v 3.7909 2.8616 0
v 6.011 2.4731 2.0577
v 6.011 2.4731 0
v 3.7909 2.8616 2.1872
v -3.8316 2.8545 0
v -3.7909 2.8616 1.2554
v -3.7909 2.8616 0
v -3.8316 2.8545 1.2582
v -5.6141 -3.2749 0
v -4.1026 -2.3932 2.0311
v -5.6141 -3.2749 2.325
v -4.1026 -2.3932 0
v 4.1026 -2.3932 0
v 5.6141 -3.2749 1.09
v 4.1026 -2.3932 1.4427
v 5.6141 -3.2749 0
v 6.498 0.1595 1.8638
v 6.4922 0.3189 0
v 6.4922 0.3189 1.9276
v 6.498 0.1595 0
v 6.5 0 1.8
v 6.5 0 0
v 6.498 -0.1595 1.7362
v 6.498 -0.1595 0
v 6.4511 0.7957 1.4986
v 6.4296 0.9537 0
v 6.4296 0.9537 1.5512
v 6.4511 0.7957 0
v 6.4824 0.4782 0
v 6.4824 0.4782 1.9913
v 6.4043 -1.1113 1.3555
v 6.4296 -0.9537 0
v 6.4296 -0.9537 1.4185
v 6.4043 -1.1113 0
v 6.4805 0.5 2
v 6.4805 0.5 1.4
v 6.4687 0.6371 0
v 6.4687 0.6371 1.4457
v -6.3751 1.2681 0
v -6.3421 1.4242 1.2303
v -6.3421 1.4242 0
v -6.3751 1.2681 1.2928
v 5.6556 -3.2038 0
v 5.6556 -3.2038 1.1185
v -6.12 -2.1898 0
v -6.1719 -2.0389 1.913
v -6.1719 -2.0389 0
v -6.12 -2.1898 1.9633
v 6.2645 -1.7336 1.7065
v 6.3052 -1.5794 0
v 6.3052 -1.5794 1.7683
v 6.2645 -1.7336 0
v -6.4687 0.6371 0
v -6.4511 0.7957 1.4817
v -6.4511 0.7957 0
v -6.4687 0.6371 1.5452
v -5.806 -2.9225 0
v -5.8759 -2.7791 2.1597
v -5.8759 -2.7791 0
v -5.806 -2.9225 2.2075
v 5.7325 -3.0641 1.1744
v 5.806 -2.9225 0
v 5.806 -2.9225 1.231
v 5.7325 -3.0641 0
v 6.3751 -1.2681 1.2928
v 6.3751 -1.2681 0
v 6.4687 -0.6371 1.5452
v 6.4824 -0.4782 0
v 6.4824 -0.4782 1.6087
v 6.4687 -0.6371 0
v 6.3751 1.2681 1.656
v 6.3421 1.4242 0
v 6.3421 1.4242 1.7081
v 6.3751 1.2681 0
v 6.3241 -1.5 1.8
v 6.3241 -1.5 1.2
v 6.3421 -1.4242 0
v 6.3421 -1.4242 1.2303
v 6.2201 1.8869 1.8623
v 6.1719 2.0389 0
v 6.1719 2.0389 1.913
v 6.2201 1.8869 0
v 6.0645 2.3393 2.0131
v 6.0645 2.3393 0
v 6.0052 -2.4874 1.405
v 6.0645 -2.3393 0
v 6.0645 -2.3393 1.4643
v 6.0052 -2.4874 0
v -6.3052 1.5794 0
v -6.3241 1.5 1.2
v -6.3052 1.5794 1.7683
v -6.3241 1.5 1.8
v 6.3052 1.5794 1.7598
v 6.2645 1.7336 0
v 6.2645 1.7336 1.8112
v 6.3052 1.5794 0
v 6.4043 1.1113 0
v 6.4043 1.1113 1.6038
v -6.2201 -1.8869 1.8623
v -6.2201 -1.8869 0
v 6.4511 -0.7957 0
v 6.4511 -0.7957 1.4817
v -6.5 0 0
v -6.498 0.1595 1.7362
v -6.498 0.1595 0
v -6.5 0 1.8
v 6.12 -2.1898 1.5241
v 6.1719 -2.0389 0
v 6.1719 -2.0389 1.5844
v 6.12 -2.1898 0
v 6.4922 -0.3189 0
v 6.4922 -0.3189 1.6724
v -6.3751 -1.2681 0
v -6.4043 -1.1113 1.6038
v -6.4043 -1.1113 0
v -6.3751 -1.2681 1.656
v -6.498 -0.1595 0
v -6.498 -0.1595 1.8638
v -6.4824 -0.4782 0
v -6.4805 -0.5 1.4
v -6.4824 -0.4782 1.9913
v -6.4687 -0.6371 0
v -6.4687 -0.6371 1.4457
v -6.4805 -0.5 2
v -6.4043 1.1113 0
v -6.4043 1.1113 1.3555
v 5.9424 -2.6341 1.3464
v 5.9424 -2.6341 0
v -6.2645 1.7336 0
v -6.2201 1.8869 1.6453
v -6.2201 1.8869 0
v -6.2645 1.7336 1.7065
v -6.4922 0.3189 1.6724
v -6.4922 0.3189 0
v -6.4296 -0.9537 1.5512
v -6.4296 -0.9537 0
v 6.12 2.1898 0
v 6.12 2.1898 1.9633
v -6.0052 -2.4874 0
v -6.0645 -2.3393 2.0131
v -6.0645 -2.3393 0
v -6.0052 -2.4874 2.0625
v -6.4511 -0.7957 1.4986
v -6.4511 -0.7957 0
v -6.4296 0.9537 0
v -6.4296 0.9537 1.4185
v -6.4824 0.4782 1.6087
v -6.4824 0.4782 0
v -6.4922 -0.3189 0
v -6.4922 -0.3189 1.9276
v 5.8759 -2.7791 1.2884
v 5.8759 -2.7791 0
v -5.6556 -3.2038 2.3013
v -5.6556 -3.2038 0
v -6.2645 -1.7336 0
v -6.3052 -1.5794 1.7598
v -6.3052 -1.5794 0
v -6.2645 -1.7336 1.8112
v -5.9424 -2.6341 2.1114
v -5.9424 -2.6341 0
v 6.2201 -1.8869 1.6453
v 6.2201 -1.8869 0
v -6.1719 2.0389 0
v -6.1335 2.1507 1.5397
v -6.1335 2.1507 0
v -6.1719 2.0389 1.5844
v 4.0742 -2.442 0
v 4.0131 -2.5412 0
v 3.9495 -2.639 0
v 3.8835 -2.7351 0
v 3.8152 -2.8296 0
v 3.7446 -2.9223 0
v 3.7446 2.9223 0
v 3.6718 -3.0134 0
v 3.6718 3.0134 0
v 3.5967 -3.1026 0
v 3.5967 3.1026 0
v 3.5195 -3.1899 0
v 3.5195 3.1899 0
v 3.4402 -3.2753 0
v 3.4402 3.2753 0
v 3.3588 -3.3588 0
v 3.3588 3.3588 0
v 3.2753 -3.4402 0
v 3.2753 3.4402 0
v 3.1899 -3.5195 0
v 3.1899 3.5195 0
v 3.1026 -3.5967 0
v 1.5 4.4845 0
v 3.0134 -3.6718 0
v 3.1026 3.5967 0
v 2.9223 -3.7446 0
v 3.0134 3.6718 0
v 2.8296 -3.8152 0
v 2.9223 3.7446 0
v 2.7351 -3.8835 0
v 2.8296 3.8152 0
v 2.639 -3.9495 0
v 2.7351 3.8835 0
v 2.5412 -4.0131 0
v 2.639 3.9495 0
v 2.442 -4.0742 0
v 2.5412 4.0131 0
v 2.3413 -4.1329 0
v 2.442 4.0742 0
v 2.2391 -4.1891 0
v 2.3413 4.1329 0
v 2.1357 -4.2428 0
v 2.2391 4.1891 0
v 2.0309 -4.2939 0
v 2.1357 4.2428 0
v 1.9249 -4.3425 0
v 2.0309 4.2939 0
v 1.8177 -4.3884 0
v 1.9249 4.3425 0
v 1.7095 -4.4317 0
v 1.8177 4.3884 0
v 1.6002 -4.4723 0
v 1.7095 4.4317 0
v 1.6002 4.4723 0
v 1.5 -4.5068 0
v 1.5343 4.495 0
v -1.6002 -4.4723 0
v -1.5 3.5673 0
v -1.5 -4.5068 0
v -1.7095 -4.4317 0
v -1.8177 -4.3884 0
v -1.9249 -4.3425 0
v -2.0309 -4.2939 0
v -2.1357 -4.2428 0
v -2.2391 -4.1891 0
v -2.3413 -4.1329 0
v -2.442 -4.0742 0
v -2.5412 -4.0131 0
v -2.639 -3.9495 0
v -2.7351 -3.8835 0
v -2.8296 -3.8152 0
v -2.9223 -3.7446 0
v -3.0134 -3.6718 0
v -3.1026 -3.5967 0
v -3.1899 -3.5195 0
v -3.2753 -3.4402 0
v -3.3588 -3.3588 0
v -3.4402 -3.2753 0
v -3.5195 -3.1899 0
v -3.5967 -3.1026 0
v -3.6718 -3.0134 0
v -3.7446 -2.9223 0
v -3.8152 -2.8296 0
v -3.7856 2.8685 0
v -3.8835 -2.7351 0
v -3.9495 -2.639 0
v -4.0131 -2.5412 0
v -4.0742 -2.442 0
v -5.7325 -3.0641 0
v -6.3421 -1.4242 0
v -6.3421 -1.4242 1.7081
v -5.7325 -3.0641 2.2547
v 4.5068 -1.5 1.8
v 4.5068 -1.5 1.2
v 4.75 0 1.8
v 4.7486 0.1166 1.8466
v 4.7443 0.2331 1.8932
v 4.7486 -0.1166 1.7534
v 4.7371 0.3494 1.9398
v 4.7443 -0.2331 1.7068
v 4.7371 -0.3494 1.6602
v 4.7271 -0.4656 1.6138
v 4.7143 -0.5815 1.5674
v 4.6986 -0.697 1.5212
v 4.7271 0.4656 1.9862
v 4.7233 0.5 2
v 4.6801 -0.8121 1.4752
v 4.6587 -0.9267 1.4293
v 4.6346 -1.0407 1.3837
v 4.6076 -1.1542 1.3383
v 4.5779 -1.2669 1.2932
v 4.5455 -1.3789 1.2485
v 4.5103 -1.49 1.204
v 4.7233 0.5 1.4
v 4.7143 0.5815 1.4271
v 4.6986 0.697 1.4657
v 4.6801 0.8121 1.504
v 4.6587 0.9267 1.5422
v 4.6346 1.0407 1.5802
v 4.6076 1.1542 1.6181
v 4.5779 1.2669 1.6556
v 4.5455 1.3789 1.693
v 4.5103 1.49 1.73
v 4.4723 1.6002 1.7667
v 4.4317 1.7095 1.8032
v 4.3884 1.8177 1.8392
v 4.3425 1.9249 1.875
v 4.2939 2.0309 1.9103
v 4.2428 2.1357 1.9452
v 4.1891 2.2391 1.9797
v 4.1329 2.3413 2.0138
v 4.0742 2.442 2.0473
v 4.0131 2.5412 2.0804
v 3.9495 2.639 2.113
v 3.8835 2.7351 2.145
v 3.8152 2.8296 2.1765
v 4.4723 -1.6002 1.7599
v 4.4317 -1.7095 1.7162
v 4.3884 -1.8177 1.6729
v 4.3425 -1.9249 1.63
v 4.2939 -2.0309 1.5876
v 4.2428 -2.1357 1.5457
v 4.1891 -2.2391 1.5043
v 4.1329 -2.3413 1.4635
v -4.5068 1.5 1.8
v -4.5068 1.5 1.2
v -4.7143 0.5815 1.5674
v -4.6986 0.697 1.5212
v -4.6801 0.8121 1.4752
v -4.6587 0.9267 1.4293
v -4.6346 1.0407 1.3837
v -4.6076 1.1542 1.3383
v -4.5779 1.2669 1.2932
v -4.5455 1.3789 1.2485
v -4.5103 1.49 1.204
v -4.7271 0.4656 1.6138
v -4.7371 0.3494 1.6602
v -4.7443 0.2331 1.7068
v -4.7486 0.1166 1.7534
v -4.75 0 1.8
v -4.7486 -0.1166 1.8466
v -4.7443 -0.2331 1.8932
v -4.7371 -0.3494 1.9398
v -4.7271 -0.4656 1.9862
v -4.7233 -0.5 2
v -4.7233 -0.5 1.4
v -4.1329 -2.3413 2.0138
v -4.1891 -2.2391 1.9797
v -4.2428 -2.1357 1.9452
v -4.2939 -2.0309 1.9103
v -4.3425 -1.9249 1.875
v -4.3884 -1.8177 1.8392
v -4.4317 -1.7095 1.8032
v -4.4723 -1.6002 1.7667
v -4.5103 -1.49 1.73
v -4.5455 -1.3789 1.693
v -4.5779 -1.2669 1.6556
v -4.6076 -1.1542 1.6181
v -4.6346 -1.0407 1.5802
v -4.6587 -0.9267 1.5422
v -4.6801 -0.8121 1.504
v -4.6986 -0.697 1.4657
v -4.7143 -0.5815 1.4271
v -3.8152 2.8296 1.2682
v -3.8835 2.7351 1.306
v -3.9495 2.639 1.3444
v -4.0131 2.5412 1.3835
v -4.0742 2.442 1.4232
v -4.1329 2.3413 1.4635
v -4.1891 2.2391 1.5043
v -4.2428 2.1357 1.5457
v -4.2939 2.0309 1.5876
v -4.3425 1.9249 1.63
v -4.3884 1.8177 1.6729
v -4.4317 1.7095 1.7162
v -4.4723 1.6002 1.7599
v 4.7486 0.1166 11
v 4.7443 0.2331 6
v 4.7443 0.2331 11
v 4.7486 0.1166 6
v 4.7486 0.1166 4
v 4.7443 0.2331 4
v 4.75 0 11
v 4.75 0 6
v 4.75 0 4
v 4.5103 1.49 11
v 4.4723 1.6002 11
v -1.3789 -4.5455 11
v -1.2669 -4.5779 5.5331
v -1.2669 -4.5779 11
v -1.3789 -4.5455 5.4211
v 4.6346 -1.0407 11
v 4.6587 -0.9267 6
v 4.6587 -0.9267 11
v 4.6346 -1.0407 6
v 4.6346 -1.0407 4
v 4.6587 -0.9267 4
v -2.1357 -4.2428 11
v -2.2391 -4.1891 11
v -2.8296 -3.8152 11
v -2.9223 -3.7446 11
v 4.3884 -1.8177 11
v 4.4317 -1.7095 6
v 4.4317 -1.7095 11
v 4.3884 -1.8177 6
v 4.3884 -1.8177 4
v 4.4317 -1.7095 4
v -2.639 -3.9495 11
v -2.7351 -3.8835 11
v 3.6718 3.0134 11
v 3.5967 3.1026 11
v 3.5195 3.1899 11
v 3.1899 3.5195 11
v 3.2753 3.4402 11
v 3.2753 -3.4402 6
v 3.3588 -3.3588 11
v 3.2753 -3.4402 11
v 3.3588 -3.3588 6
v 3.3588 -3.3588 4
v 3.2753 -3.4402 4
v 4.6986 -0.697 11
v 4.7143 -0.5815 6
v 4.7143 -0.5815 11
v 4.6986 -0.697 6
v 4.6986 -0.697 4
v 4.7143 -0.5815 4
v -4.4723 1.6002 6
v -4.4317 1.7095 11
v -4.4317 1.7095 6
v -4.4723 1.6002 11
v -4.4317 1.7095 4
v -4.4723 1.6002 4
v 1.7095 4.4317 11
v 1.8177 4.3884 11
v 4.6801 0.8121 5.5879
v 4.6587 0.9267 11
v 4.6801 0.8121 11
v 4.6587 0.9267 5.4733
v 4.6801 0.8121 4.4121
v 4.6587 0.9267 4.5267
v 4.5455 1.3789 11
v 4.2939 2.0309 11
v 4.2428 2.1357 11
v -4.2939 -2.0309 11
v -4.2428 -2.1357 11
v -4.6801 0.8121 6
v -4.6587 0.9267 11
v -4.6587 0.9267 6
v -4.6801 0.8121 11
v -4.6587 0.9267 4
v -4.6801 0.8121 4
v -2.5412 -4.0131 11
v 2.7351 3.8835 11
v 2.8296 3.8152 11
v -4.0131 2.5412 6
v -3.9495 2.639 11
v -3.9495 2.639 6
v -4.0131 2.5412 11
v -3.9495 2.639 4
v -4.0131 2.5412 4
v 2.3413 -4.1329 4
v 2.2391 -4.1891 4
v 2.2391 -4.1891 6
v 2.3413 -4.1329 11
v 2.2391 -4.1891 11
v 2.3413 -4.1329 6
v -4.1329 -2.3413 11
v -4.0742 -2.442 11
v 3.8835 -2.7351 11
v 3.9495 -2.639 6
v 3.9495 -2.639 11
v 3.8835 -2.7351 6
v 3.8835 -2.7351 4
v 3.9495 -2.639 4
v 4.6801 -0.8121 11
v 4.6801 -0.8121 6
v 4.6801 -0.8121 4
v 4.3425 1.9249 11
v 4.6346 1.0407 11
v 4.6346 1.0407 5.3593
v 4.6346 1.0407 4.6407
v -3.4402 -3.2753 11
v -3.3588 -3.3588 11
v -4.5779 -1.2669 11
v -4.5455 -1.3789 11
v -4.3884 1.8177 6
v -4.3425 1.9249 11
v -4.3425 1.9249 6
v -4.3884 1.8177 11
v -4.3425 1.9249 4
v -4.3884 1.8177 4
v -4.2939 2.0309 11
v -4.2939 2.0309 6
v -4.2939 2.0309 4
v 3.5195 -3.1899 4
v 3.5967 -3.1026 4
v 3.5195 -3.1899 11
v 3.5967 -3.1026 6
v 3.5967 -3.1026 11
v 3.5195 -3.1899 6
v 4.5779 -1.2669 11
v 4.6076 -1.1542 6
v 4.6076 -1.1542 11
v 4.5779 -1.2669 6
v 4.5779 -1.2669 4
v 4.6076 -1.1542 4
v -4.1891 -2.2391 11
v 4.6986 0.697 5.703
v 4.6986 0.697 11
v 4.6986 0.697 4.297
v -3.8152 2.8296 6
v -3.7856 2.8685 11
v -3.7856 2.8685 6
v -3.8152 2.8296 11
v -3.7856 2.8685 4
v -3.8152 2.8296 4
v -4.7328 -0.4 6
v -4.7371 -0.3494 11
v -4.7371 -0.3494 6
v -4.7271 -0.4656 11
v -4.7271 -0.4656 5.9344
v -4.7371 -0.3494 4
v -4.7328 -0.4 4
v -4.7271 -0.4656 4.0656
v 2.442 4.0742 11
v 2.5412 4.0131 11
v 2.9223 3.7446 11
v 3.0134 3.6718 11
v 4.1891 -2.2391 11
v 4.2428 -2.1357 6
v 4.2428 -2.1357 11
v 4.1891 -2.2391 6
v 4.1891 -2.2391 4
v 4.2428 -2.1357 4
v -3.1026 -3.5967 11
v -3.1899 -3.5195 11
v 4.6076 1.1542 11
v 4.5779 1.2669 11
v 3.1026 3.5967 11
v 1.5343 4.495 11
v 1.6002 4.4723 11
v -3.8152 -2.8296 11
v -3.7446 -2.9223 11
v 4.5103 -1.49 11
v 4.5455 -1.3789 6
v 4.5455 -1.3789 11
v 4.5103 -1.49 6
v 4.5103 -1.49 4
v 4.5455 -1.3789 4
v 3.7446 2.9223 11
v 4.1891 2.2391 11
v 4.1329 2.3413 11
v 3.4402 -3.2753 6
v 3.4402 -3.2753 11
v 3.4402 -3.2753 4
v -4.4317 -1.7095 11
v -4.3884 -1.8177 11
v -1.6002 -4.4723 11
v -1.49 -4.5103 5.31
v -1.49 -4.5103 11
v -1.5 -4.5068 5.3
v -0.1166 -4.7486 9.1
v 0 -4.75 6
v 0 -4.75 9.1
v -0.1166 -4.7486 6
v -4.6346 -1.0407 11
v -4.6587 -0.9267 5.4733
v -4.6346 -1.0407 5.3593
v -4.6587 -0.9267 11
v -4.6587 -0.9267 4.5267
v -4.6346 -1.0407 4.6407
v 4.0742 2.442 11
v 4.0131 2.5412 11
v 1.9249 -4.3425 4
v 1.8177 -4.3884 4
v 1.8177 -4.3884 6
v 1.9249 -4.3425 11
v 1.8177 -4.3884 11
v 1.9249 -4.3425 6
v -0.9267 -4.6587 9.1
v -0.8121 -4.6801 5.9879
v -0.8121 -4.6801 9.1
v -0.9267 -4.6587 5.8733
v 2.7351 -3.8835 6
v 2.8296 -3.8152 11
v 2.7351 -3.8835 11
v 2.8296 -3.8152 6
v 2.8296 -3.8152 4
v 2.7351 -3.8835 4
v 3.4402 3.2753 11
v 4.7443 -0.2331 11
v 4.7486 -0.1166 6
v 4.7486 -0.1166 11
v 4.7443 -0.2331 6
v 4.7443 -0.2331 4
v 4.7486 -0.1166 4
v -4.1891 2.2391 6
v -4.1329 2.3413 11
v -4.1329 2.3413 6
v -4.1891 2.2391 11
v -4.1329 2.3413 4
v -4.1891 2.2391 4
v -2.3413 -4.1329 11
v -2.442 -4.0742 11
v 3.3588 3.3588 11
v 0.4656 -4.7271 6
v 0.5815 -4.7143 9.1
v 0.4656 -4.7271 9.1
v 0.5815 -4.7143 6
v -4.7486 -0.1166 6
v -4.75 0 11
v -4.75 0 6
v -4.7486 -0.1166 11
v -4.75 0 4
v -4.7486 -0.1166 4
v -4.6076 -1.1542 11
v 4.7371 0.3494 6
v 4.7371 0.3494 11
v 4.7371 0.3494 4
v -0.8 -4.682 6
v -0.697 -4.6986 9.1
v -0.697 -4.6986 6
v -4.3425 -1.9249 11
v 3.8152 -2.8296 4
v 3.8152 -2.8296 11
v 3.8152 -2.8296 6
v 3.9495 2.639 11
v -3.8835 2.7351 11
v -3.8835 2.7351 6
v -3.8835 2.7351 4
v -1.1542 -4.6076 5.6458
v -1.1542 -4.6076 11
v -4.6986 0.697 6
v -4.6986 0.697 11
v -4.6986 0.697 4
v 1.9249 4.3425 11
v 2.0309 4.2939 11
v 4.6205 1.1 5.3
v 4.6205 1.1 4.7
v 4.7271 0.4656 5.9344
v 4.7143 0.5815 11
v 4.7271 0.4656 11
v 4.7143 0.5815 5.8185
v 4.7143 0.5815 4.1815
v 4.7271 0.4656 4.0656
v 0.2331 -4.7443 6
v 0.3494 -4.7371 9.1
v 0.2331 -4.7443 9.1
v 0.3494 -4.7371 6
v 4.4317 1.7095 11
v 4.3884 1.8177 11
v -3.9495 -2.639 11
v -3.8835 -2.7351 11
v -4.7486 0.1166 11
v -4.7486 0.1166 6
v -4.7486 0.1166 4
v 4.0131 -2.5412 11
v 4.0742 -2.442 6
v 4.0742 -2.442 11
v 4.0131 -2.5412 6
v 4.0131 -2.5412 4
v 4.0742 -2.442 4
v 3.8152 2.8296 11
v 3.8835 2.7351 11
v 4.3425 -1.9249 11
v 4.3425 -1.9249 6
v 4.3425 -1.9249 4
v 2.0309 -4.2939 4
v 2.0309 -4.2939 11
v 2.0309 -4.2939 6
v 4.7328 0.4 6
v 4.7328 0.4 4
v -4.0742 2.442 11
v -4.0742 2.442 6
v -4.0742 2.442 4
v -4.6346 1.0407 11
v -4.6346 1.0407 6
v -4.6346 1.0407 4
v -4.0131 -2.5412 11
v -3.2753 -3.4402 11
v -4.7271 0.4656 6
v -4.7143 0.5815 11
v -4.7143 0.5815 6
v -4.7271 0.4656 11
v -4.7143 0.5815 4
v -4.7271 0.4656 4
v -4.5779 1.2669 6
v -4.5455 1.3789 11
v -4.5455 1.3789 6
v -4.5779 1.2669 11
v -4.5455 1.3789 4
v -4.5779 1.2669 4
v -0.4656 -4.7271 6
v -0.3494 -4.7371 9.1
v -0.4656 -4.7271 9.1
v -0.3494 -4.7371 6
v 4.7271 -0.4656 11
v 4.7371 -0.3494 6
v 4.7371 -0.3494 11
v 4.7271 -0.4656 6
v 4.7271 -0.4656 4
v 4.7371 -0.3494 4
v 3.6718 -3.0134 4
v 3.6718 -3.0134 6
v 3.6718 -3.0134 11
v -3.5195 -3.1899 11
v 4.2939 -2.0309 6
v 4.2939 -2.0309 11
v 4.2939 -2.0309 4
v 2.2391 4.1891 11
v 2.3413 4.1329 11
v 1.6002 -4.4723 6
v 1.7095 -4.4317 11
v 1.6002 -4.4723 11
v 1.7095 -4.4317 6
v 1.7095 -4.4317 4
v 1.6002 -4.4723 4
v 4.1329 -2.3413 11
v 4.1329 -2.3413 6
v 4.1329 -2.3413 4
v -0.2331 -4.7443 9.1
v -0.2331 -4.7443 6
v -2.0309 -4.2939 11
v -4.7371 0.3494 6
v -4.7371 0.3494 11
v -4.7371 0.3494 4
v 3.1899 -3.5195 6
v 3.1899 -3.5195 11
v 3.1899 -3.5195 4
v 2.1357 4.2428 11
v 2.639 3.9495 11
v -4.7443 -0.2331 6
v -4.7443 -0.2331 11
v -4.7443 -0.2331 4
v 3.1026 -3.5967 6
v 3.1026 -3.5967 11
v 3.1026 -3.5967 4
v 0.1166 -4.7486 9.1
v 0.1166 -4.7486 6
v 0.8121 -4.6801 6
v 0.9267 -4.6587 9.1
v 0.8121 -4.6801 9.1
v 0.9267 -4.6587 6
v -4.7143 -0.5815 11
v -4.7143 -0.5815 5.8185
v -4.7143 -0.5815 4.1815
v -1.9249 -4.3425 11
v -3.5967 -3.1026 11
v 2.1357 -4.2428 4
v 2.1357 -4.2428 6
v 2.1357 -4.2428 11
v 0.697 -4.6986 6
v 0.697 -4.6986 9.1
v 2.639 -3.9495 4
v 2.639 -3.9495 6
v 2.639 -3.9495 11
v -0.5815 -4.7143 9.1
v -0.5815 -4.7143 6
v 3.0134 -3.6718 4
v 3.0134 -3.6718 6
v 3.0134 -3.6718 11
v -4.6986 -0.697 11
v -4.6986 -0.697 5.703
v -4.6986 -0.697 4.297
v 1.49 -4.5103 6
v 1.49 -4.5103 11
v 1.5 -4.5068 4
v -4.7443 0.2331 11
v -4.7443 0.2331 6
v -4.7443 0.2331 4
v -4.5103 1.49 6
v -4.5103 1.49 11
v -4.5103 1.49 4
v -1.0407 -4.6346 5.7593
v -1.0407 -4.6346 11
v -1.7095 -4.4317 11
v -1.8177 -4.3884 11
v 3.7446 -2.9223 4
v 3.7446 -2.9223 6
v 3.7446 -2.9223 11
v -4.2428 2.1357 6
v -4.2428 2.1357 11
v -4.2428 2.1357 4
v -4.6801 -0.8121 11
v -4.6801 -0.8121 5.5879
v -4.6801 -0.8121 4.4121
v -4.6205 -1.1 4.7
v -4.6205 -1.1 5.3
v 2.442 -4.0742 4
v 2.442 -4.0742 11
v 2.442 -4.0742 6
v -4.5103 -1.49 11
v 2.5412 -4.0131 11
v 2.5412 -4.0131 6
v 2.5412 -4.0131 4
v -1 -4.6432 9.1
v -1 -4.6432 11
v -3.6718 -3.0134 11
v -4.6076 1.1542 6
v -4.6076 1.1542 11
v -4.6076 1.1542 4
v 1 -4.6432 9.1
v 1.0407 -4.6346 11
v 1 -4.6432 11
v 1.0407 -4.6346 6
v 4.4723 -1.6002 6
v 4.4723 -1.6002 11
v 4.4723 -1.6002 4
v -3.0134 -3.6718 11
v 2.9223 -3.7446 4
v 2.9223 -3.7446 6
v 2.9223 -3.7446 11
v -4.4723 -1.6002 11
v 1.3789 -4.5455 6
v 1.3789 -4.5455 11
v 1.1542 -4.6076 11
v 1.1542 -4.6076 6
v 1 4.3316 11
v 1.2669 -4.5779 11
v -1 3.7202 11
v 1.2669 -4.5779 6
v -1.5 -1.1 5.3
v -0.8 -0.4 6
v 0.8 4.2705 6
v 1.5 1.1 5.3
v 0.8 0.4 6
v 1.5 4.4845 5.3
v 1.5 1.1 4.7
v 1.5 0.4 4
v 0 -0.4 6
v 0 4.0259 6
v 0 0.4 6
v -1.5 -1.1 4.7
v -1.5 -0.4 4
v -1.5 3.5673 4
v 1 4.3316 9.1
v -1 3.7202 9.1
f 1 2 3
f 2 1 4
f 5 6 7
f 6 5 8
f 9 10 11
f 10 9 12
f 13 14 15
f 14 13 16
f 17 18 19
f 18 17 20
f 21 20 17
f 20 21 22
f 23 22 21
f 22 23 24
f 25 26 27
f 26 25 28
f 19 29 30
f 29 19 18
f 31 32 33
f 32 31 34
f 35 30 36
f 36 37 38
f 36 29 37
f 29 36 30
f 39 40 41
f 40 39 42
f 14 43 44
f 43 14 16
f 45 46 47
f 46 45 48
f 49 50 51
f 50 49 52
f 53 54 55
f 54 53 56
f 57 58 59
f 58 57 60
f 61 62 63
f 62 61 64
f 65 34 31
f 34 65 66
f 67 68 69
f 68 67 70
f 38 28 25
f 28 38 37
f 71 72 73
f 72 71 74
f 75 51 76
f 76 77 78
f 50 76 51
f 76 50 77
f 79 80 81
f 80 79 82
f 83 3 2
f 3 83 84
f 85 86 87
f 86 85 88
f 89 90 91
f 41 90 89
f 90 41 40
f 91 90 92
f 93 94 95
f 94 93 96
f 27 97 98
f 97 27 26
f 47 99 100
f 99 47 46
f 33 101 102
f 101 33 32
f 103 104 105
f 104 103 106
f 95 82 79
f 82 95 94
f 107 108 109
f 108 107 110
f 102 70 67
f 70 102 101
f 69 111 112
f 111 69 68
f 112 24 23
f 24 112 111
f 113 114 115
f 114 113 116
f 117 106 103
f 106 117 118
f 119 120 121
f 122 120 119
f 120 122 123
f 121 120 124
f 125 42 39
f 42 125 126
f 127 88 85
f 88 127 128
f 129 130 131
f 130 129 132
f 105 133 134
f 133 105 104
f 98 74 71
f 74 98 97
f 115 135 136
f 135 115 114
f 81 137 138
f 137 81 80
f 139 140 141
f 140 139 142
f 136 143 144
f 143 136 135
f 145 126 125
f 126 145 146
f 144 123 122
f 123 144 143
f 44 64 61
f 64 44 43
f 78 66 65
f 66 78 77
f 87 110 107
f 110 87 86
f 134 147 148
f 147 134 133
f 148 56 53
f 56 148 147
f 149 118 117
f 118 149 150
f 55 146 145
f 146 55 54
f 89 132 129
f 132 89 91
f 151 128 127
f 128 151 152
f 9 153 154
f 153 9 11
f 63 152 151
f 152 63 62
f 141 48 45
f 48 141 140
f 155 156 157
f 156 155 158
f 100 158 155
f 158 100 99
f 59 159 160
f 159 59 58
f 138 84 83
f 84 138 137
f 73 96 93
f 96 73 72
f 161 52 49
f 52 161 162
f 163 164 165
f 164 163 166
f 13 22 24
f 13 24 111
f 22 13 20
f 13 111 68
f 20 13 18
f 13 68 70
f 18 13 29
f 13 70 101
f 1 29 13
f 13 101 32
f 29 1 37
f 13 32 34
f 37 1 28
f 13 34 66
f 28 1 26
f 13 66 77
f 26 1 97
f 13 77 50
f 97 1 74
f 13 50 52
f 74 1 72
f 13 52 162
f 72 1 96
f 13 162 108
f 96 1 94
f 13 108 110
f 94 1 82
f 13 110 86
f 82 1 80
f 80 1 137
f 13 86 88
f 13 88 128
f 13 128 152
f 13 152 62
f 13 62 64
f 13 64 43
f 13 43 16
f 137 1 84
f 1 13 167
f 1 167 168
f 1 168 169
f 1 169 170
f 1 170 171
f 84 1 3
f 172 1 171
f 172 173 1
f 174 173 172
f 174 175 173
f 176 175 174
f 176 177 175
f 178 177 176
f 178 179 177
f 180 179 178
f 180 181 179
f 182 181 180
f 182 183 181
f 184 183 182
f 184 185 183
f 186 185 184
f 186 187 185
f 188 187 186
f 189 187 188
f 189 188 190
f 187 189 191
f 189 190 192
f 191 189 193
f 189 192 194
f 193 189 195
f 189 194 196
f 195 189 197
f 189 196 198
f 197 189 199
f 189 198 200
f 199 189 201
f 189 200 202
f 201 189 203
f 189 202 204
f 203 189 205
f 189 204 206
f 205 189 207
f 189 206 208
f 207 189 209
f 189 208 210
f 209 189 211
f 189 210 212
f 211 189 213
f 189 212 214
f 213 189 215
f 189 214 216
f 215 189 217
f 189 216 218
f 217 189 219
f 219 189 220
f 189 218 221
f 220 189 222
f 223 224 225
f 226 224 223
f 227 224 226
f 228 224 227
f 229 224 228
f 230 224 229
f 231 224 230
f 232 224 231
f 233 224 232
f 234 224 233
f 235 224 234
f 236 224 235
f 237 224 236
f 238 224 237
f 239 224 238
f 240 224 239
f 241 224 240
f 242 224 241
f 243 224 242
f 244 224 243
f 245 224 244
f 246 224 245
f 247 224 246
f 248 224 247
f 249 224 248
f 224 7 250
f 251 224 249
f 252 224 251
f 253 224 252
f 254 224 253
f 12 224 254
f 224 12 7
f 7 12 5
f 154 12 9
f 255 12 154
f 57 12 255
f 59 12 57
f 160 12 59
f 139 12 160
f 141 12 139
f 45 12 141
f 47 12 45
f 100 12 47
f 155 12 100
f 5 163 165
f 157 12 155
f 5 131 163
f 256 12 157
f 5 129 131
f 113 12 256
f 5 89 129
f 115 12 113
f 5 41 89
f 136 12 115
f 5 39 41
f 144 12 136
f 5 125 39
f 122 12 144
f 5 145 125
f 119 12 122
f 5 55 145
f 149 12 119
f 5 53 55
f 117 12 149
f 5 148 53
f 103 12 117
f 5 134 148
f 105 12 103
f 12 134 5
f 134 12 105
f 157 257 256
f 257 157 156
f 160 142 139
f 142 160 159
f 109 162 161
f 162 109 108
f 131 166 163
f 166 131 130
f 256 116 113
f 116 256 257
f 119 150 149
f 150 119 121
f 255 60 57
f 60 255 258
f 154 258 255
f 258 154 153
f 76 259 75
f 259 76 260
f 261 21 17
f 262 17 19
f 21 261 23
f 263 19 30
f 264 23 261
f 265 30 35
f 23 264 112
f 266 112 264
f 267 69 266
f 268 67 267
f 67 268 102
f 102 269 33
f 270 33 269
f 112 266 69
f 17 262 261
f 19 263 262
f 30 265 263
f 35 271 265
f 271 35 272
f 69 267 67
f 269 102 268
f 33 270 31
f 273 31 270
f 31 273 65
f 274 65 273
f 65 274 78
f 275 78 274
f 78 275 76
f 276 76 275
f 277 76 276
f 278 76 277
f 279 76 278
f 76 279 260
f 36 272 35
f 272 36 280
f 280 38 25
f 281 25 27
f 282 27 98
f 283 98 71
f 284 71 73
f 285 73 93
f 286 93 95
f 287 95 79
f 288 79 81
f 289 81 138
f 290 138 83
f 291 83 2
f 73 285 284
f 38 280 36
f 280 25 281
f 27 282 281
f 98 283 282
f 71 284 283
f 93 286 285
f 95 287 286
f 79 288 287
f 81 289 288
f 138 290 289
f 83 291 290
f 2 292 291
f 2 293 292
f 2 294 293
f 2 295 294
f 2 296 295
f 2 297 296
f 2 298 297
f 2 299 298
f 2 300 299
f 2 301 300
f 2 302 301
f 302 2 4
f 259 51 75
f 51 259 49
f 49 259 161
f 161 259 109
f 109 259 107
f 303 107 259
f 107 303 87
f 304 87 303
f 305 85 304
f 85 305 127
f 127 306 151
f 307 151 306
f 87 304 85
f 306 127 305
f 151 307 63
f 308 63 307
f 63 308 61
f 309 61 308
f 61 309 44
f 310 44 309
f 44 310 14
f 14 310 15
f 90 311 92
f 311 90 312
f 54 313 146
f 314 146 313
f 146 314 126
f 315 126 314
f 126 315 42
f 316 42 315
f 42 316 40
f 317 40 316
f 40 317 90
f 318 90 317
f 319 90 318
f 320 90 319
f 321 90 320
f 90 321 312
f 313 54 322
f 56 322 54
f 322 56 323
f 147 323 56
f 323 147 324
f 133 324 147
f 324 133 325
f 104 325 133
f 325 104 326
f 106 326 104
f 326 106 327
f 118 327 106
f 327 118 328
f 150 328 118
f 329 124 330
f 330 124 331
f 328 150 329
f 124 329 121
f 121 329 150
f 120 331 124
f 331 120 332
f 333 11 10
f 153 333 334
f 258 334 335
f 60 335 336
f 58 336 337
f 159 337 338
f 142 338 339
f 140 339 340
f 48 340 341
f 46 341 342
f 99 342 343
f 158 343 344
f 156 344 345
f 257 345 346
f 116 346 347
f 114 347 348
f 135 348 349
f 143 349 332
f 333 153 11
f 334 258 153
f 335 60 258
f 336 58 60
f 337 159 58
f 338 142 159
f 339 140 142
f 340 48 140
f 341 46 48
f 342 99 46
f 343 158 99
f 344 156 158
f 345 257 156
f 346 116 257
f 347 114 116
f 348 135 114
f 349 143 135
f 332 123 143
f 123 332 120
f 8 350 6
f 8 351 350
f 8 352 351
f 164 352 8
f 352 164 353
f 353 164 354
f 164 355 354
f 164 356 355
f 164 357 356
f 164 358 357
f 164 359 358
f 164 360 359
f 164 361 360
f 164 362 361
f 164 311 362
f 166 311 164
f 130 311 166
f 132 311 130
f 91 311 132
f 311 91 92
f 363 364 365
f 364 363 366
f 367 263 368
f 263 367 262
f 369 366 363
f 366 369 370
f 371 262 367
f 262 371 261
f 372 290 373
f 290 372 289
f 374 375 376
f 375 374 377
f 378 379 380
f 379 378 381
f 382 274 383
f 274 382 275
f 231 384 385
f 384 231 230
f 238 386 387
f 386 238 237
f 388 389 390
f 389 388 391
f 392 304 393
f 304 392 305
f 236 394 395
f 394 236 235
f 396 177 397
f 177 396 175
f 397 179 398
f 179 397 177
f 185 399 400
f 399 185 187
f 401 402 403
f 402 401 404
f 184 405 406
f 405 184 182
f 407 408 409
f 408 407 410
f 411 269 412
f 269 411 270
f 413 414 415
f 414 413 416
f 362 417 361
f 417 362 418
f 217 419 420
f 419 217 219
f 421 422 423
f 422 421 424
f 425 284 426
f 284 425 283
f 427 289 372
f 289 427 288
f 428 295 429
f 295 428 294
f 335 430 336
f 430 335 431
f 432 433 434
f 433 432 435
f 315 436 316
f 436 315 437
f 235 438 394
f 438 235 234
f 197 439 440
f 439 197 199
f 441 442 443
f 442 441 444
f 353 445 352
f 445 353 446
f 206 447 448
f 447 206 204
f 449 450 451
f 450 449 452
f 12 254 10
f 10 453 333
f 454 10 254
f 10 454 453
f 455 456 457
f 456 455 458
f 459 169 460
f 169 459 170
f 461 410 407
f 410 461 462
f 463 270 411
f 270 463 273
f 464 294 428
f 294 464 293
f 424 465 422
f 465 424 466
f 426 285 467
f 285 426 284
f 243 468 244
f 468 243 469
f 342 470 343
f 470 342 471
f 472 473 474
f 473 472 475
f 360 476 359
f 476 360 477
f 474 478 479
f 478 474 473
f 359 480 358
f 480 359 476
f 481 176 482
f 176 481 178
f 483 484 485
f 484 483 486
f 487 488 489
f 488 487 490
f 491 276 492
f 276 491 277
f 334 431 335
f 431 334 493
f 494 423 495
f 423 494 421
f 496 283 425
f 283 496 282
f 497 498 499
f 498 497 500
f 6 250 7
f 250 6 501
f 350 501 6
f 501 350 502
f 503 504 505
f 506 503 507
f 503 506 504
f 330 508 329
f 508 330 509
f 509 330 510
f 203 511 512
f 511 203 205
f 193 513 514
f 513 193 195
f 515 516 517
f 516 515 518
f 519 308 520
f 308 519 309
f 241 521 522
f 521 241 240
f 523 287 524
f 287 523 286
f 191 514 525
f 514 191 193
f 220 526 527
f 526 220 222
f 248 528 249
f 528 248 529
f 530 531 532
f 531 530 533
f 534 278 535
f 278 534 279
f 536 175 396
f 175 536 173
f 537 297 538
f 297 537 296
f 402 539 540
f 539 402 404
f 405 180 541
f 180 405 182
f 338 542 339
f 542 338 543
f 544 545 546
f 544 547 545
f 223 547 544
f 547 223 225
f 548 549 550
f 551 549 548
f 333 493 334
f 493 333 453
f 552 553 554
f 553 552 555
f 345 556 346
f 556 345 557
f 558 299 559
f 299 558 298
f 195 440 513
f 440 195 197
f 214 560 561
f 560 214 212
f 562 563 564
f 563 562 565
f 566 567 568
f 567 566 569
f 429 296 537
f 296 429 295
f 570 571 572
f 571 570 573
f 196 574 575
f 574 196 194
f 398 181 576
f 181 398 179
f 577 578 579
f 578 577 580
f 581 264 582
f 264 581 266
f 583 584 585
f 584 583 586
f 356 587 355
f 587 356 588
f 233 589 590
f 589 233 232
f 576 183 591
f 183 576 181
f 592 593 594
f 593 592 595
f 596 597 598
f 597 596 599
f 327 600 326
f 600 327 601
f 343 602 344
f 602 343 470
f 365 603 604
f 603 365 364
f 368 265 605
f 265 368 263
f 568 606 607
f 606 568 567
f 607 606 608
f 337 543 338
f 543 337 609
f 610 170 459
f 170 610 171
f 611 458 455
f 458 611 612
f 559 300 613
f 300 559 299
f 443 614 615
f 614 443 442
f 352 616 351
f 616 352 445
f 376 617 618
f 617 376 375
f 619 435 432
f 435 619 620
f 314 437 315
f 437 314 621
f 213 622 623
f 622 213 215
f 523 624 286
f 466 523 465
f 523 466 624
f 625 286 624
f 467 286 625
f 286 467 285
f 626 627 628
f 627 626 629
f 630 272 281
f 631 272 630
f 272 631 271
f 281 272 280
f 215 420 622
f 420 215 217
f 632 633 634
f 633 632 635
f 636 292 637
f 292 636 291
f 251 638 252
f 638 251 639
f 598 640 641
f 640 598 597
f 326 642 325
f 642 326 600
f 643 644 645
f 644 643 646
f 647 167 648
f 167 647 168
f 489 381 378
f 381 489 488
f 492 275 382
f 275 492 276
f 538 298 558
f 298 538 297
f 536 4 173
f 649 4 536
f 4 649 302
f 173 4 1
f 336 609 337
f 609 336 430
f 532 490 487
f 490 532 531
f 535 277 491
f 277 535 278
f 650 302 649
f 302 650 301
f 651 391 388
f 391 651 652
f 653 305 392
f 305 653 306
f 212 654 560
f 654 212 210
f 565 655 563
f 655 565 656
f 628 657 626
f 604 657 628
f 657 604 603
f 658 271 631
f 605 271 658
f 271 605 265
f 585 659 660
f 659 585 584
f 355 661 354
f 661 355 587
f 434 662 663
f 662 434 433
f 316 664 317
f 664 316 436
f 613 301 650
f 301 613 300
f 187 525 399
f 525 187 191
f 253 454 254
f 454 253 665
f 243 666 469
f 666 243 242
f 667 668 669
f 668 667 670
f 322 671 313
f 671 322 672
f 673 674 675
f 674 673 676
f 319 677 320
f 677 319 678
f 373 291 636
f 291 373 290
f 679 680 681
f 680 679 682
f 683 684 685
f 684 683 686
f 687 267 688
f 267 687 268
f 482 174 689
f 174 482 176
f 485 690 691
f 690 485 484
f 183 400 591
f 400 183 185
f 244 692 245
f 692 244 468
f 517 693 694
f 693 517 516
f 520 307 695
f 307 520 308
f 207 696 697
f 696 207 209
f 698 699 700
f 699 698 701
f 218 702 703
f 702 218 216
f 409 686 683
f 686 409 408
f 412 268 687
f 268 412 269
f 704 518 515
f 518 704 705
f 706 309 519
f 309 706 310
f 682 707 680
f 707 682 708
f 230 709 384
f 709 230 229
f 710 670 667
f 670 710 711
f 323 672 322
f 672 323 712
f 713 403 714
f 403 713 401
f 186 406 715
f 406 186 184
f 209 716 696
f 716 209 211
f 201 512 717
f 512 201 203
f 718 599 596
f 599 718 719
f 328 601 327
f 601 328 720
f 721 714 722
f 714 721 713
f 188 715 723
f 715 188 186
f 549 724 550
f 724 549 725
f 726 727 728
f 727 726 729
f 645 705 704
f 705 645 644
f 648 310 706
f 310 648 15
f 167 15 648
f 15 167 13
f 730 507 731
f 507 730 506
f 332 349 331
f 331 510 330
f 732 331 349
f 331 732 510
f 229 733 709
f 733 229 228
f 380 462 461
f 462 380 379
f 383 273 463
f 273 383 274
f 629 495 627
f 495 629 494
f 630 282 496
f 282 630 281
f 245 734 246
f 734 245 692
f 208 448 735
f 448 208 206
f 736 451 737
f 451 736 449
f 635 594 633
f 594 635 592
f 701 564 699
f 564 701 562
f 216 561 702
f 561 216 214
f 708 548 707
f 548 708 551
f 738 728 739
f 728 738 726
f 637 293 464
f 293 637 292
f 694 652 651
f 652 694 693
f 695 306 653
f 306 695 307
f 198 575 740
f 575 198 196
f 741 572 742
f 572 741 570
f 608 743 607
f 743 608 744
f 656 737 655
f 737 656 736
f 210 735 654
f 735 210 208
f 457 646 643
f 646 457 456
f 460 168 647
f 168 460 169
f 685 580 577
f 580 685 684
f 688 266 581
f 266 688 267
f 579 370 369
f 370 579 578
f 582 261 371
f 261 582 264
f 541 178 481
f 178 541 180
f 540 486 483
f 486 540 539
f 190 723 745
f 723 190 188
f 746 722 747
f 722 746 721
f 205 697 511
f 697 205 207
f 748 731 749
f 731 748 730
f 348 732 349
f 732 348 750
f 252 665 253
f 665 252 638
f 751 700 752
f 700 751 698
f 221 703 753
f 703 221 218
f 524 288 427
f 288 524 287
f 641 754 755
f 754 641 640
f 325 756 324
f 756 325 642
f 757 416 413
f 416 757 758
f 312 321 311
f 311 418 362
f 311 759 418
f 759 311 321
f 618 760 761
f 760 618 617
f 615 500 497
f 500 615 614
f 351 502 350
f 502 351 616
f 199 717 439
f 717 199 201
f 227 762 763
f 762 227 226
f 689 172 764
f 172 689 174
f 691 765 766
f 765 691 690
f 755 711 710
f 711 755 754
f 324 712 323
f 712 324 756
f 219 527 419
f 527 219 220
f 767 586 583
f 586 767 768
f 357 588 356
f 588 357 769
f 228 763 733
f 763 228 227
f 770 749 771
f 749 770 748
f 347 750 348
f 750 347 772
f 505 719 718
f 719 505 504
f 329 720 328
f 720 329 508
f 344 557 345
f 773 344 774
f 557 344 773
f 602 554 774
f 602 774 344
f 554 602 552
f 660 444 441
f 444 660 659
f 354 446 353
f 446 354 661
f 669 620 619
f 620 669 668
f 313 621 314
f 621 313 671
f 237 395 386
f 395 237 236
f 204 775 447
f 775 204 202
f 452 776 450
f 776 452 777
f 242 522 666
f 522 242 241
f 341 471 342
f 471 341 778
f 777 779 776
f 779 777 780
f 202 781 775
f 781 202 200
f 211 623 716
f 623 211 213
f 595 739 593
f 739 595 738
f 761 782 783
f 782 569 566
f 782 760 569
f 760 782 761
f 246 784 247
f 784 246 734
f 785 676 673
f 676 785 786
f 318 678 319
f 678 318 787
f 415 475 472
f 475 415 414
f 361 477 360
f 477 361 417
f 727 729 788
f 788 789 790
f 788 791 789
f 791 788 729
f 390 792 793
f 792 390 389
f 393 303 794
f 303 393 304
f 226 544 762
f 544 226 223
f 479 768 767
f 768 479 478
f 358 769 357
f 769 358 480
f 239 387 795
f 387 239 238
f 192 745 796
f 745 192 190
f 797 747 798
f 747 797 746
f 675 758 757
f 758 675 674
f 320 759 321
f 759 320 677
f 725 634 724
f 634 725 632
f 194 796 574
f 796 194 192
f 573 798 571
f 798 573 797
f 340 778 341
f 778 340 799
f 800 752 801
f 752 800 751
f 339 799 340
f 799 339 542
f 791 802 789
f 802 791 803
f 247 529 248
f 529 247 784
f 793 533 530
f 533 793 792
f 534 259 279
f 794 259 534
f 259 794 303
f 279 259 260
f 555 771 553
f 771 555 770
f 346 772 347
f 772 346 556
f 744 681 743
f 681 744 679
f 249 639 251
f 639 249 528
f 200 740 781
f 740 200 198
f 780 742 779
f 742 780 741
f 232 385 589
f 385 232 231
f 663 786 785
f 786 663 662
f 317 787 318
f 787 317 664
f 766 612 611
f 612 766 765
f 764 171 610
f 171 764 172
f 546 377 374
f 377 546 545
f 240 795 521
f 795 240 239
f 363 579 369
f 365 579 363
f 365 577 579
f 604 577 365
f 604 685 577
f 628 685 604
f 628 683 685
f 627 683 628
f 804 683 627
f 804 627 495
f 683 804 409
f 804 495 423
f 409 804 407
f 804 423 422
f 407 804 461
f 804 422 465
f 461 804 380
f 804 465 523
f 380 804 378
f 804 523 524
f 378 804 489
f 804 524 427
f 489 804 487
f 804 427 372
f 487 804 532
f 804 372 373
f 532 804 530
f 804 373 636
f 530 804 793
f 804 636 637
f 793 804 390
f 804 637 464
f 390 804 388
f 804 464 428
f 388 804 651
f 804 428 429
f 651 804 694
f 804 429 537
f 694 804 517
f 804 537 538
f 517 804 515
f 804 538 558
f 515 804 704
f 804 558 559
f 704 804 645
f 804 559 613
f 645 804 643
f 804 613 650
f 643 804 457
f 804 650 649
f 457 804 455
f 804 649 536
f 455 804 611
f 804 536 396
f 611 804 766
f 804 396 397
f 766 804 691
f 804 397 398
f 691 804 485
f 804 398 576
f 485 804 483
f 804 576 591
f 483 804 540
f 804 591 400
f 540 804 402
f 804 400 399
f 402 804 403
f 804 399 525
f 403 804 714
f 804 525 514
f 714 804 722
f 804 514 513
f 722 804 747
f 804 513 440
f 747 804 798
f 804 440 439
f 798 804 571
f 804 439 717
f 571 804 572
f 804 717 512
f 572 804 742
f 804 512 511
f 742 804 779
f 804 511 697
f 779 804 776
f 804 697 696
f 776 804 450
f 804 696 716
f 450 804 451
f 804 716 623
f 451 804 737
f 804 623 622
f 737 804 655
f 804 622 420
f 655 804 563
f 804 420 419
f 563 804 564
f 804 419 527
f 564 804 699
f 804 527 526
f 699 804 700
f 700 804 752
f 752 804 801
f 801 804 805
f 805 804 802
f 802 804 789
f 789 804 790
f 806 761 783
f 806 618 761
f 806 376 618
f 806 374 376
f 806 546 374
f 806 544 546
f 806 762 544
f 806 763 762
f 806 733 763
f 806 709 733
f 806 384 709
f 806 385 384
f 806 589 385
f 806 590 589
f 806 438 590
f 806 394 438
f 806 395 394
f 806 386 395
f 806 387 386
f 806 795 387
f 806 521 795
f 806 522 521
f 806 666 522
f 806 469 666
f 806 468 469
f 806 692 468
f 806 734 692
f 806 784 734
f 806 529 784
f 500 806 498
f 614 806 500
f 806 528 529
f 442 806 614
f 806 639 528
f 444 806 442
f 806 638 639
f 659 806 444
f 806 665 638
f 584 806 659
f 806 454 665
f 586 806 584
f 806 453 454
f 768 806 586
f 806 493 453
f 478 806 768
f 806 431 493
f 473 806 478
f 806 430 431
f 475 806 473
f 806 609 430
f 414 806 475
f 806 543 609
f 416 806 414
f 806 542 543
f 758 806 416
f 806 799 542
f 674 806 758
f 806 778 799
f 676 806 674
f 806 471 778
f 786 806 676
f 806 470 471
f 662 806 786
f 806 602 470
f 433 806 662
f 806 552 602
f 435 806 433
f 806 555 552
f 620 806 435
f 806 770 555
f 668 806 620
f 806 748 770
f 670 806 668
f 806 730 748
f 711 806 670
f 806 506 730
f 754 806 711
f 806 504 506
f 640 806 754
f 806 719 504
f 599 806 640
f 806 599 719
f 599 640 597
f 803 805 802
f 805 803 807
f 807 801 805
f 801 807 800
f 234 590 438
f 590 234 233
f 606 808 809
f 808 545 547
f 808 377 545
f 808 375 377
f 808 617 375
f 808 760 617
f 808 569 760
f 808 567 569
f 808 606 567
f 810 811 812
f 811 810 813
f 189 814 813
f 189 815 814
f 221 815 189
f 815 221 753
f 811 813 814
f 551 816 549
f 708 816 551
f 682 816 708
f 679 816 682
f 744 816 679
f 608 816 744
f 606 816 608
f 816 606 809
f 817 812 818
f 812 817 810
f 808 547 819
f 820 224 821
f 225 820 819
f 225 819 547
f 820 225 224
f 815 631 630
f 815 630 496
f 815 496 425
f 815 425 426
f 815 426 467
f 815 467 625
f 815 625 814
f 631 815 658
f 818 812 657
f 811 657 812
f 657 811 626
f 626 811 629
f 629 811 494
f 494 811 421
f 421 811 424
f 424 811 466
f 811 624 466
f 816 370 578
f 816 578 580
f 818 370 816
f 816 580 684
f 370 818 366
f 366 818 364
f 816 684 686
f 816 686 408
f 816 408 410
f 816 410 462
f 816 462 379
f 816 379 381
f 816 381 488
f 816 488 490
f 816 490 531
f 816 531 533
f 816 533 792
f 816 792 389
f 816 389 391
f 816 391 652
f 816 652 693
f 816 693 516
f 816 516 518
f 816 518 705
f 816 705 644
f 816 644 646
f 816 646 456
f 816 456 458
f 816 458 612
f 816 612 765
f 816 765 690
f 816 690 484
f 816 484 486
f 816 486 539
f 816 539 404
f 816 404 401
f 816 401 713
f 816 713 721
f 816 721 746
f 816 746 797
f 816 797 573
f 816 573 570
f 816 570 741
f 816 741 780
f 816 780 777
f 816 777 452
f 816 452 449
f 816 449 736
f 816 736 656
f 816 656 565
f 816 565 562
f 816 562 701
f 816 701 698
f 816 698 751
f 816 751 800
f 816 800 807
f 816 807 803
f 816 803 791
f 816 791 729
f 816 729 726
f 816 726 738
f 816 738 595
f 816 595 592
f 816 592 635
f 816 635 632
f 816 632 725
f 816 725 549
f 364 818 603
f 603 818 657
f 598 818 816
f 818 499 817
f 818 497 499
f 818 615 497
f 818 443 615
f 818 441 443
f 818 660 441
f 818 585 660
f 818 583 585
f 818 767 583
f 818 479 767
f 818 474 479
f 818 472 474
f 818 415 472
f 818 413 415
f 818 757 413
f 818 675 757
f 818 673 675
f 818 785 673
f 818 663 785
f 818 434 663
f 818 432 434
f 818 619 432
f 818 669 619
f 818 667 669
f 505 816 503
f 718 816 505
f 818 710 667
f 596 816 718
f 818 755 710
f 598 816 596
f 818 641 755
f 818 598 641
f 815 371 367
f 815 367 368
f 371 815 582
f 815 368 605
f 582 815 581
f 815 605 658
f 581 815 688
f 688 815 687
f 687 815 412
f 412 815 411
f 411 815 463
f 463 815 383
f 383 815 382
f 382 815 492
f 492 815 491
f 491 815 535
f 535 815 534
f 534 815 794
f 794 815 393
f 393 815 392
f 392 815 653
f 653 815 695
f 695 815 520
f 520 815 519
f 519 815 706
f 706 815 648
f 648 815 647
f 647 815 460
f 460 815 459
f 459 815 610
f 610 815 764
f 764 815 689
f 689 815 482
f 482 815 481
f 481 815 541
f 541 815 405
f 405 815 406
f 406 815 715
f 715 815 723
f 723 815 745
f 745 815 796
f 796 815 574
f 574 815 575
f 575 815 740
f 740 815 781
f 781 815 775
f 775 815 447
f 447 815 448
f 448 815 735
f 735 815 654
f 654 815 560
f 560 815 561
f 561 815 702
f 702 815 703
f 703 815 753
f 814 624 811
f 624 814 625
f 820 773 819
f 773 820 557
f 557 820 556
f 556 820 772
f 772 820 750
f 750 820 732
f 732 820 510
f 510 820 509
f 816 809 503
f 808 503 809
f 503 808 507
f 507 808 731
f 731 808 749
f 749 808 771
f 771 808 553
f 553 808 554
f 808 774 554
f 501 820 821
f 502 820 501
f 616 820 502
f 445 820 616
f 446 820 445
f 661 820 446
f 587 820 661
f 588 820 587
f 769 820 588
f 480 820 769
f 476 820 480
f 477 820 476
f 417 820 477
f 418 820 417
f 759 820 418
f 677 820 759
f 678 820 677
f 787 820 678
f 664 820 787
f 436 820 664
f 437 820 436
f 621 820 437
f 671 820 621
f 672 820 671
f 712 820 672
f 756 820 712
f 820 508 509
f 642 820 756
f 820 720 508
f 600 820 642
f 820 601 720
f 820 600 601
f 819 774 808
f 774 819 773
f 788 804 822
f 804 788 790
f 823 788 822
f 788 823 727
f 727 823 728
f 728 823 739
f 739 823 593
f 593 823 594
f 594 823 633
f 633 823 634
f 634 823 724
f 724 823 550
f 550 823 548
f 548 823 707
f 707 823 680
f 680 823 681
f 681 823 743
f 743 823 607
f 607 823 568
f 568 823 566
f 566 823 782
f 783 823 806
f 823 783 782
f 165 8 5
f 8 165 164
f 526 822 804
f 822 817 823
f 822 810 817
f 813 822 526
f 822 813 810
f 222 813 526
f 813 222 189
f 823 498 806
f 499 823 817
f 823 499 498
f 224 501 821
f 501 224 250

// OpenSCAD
include <Chamfers-for-OpenSCAD/Chamfer.scad>;

$fn = 256;

difference() {
    union() {
        cylinder(h=11, d=9.5);
        difference() {
            cylinder(h=3, d=13);
            cut_wedge();
            translate([3,-2.5,1])
                rotate([90,0,90])
                    ridges();
            translate([-3,2.5,1])
                rotate([90,0,270])
                    ridges();
        }

    }
    translate([-1.5,-7,-0.1]) // main vertical cut
        chamferCube([3,14,6.1], chamfers = [[0,0,0,0],[0,1,1,0],[0,0,0,0]], ch = 0.7);
    translate([-1,-5,9.1]) // top screwdriver cut
        cube([2,10,2]);
    translate([0,-8.9,4])
        chamferCube([10, 10, 2], chamfers = [[0,1,1,0],[0,0,0,0],[0,0,0,0]], ch = 0.7);
    translate([-10,-1.1,4])
        chamferCube([10, 10, 2], chamfers = [[1,0,0,1],[0,0,0,0],[0,0,0,0]], ch = 0.7);
    rotate([0,0,17])
        translate([-7, 3.85, -1]) // Flat side
            cube([14,2,14]);
}

//cut_wedge();


module wedge() {
    translate([0,0,-0.1]){
        linear_extrude(height = 3.2) {
            polygon([[0,0],[12,7],[12,10],[-12,10],[-12,7]]);
        }
        linear_extrude(height = 3.2) {
            polygon([[0,0],[-12,-7],[-12,-10],[12,-10],[12,-7]]);
        }
    }
}

module cut_wedge() {
    translate([0,0,-0.05]){
        linear_extrude(height = 3.2) {
            polygon([[0,0],[3,3],[7,2.3],[12,7],[12,10],[-12,10],[-12,7],[-7,2.3],[-3,3]]);
        }
        linear_extrude(height = 3.2) {
            polygon([[0,0],[-12,-7],[-12,-10],[12,-10],[12,-7]]);
        }
    }
}

module ridges() {
    linear_extrude(height= 5) {
        polygon([[-1,0],[1,0.8],[1,0.2],
                 [3,1],[3,0.4],[6,1.4],
                 [6,4],[-1,6],[-1,0.7]]);
    }
}
